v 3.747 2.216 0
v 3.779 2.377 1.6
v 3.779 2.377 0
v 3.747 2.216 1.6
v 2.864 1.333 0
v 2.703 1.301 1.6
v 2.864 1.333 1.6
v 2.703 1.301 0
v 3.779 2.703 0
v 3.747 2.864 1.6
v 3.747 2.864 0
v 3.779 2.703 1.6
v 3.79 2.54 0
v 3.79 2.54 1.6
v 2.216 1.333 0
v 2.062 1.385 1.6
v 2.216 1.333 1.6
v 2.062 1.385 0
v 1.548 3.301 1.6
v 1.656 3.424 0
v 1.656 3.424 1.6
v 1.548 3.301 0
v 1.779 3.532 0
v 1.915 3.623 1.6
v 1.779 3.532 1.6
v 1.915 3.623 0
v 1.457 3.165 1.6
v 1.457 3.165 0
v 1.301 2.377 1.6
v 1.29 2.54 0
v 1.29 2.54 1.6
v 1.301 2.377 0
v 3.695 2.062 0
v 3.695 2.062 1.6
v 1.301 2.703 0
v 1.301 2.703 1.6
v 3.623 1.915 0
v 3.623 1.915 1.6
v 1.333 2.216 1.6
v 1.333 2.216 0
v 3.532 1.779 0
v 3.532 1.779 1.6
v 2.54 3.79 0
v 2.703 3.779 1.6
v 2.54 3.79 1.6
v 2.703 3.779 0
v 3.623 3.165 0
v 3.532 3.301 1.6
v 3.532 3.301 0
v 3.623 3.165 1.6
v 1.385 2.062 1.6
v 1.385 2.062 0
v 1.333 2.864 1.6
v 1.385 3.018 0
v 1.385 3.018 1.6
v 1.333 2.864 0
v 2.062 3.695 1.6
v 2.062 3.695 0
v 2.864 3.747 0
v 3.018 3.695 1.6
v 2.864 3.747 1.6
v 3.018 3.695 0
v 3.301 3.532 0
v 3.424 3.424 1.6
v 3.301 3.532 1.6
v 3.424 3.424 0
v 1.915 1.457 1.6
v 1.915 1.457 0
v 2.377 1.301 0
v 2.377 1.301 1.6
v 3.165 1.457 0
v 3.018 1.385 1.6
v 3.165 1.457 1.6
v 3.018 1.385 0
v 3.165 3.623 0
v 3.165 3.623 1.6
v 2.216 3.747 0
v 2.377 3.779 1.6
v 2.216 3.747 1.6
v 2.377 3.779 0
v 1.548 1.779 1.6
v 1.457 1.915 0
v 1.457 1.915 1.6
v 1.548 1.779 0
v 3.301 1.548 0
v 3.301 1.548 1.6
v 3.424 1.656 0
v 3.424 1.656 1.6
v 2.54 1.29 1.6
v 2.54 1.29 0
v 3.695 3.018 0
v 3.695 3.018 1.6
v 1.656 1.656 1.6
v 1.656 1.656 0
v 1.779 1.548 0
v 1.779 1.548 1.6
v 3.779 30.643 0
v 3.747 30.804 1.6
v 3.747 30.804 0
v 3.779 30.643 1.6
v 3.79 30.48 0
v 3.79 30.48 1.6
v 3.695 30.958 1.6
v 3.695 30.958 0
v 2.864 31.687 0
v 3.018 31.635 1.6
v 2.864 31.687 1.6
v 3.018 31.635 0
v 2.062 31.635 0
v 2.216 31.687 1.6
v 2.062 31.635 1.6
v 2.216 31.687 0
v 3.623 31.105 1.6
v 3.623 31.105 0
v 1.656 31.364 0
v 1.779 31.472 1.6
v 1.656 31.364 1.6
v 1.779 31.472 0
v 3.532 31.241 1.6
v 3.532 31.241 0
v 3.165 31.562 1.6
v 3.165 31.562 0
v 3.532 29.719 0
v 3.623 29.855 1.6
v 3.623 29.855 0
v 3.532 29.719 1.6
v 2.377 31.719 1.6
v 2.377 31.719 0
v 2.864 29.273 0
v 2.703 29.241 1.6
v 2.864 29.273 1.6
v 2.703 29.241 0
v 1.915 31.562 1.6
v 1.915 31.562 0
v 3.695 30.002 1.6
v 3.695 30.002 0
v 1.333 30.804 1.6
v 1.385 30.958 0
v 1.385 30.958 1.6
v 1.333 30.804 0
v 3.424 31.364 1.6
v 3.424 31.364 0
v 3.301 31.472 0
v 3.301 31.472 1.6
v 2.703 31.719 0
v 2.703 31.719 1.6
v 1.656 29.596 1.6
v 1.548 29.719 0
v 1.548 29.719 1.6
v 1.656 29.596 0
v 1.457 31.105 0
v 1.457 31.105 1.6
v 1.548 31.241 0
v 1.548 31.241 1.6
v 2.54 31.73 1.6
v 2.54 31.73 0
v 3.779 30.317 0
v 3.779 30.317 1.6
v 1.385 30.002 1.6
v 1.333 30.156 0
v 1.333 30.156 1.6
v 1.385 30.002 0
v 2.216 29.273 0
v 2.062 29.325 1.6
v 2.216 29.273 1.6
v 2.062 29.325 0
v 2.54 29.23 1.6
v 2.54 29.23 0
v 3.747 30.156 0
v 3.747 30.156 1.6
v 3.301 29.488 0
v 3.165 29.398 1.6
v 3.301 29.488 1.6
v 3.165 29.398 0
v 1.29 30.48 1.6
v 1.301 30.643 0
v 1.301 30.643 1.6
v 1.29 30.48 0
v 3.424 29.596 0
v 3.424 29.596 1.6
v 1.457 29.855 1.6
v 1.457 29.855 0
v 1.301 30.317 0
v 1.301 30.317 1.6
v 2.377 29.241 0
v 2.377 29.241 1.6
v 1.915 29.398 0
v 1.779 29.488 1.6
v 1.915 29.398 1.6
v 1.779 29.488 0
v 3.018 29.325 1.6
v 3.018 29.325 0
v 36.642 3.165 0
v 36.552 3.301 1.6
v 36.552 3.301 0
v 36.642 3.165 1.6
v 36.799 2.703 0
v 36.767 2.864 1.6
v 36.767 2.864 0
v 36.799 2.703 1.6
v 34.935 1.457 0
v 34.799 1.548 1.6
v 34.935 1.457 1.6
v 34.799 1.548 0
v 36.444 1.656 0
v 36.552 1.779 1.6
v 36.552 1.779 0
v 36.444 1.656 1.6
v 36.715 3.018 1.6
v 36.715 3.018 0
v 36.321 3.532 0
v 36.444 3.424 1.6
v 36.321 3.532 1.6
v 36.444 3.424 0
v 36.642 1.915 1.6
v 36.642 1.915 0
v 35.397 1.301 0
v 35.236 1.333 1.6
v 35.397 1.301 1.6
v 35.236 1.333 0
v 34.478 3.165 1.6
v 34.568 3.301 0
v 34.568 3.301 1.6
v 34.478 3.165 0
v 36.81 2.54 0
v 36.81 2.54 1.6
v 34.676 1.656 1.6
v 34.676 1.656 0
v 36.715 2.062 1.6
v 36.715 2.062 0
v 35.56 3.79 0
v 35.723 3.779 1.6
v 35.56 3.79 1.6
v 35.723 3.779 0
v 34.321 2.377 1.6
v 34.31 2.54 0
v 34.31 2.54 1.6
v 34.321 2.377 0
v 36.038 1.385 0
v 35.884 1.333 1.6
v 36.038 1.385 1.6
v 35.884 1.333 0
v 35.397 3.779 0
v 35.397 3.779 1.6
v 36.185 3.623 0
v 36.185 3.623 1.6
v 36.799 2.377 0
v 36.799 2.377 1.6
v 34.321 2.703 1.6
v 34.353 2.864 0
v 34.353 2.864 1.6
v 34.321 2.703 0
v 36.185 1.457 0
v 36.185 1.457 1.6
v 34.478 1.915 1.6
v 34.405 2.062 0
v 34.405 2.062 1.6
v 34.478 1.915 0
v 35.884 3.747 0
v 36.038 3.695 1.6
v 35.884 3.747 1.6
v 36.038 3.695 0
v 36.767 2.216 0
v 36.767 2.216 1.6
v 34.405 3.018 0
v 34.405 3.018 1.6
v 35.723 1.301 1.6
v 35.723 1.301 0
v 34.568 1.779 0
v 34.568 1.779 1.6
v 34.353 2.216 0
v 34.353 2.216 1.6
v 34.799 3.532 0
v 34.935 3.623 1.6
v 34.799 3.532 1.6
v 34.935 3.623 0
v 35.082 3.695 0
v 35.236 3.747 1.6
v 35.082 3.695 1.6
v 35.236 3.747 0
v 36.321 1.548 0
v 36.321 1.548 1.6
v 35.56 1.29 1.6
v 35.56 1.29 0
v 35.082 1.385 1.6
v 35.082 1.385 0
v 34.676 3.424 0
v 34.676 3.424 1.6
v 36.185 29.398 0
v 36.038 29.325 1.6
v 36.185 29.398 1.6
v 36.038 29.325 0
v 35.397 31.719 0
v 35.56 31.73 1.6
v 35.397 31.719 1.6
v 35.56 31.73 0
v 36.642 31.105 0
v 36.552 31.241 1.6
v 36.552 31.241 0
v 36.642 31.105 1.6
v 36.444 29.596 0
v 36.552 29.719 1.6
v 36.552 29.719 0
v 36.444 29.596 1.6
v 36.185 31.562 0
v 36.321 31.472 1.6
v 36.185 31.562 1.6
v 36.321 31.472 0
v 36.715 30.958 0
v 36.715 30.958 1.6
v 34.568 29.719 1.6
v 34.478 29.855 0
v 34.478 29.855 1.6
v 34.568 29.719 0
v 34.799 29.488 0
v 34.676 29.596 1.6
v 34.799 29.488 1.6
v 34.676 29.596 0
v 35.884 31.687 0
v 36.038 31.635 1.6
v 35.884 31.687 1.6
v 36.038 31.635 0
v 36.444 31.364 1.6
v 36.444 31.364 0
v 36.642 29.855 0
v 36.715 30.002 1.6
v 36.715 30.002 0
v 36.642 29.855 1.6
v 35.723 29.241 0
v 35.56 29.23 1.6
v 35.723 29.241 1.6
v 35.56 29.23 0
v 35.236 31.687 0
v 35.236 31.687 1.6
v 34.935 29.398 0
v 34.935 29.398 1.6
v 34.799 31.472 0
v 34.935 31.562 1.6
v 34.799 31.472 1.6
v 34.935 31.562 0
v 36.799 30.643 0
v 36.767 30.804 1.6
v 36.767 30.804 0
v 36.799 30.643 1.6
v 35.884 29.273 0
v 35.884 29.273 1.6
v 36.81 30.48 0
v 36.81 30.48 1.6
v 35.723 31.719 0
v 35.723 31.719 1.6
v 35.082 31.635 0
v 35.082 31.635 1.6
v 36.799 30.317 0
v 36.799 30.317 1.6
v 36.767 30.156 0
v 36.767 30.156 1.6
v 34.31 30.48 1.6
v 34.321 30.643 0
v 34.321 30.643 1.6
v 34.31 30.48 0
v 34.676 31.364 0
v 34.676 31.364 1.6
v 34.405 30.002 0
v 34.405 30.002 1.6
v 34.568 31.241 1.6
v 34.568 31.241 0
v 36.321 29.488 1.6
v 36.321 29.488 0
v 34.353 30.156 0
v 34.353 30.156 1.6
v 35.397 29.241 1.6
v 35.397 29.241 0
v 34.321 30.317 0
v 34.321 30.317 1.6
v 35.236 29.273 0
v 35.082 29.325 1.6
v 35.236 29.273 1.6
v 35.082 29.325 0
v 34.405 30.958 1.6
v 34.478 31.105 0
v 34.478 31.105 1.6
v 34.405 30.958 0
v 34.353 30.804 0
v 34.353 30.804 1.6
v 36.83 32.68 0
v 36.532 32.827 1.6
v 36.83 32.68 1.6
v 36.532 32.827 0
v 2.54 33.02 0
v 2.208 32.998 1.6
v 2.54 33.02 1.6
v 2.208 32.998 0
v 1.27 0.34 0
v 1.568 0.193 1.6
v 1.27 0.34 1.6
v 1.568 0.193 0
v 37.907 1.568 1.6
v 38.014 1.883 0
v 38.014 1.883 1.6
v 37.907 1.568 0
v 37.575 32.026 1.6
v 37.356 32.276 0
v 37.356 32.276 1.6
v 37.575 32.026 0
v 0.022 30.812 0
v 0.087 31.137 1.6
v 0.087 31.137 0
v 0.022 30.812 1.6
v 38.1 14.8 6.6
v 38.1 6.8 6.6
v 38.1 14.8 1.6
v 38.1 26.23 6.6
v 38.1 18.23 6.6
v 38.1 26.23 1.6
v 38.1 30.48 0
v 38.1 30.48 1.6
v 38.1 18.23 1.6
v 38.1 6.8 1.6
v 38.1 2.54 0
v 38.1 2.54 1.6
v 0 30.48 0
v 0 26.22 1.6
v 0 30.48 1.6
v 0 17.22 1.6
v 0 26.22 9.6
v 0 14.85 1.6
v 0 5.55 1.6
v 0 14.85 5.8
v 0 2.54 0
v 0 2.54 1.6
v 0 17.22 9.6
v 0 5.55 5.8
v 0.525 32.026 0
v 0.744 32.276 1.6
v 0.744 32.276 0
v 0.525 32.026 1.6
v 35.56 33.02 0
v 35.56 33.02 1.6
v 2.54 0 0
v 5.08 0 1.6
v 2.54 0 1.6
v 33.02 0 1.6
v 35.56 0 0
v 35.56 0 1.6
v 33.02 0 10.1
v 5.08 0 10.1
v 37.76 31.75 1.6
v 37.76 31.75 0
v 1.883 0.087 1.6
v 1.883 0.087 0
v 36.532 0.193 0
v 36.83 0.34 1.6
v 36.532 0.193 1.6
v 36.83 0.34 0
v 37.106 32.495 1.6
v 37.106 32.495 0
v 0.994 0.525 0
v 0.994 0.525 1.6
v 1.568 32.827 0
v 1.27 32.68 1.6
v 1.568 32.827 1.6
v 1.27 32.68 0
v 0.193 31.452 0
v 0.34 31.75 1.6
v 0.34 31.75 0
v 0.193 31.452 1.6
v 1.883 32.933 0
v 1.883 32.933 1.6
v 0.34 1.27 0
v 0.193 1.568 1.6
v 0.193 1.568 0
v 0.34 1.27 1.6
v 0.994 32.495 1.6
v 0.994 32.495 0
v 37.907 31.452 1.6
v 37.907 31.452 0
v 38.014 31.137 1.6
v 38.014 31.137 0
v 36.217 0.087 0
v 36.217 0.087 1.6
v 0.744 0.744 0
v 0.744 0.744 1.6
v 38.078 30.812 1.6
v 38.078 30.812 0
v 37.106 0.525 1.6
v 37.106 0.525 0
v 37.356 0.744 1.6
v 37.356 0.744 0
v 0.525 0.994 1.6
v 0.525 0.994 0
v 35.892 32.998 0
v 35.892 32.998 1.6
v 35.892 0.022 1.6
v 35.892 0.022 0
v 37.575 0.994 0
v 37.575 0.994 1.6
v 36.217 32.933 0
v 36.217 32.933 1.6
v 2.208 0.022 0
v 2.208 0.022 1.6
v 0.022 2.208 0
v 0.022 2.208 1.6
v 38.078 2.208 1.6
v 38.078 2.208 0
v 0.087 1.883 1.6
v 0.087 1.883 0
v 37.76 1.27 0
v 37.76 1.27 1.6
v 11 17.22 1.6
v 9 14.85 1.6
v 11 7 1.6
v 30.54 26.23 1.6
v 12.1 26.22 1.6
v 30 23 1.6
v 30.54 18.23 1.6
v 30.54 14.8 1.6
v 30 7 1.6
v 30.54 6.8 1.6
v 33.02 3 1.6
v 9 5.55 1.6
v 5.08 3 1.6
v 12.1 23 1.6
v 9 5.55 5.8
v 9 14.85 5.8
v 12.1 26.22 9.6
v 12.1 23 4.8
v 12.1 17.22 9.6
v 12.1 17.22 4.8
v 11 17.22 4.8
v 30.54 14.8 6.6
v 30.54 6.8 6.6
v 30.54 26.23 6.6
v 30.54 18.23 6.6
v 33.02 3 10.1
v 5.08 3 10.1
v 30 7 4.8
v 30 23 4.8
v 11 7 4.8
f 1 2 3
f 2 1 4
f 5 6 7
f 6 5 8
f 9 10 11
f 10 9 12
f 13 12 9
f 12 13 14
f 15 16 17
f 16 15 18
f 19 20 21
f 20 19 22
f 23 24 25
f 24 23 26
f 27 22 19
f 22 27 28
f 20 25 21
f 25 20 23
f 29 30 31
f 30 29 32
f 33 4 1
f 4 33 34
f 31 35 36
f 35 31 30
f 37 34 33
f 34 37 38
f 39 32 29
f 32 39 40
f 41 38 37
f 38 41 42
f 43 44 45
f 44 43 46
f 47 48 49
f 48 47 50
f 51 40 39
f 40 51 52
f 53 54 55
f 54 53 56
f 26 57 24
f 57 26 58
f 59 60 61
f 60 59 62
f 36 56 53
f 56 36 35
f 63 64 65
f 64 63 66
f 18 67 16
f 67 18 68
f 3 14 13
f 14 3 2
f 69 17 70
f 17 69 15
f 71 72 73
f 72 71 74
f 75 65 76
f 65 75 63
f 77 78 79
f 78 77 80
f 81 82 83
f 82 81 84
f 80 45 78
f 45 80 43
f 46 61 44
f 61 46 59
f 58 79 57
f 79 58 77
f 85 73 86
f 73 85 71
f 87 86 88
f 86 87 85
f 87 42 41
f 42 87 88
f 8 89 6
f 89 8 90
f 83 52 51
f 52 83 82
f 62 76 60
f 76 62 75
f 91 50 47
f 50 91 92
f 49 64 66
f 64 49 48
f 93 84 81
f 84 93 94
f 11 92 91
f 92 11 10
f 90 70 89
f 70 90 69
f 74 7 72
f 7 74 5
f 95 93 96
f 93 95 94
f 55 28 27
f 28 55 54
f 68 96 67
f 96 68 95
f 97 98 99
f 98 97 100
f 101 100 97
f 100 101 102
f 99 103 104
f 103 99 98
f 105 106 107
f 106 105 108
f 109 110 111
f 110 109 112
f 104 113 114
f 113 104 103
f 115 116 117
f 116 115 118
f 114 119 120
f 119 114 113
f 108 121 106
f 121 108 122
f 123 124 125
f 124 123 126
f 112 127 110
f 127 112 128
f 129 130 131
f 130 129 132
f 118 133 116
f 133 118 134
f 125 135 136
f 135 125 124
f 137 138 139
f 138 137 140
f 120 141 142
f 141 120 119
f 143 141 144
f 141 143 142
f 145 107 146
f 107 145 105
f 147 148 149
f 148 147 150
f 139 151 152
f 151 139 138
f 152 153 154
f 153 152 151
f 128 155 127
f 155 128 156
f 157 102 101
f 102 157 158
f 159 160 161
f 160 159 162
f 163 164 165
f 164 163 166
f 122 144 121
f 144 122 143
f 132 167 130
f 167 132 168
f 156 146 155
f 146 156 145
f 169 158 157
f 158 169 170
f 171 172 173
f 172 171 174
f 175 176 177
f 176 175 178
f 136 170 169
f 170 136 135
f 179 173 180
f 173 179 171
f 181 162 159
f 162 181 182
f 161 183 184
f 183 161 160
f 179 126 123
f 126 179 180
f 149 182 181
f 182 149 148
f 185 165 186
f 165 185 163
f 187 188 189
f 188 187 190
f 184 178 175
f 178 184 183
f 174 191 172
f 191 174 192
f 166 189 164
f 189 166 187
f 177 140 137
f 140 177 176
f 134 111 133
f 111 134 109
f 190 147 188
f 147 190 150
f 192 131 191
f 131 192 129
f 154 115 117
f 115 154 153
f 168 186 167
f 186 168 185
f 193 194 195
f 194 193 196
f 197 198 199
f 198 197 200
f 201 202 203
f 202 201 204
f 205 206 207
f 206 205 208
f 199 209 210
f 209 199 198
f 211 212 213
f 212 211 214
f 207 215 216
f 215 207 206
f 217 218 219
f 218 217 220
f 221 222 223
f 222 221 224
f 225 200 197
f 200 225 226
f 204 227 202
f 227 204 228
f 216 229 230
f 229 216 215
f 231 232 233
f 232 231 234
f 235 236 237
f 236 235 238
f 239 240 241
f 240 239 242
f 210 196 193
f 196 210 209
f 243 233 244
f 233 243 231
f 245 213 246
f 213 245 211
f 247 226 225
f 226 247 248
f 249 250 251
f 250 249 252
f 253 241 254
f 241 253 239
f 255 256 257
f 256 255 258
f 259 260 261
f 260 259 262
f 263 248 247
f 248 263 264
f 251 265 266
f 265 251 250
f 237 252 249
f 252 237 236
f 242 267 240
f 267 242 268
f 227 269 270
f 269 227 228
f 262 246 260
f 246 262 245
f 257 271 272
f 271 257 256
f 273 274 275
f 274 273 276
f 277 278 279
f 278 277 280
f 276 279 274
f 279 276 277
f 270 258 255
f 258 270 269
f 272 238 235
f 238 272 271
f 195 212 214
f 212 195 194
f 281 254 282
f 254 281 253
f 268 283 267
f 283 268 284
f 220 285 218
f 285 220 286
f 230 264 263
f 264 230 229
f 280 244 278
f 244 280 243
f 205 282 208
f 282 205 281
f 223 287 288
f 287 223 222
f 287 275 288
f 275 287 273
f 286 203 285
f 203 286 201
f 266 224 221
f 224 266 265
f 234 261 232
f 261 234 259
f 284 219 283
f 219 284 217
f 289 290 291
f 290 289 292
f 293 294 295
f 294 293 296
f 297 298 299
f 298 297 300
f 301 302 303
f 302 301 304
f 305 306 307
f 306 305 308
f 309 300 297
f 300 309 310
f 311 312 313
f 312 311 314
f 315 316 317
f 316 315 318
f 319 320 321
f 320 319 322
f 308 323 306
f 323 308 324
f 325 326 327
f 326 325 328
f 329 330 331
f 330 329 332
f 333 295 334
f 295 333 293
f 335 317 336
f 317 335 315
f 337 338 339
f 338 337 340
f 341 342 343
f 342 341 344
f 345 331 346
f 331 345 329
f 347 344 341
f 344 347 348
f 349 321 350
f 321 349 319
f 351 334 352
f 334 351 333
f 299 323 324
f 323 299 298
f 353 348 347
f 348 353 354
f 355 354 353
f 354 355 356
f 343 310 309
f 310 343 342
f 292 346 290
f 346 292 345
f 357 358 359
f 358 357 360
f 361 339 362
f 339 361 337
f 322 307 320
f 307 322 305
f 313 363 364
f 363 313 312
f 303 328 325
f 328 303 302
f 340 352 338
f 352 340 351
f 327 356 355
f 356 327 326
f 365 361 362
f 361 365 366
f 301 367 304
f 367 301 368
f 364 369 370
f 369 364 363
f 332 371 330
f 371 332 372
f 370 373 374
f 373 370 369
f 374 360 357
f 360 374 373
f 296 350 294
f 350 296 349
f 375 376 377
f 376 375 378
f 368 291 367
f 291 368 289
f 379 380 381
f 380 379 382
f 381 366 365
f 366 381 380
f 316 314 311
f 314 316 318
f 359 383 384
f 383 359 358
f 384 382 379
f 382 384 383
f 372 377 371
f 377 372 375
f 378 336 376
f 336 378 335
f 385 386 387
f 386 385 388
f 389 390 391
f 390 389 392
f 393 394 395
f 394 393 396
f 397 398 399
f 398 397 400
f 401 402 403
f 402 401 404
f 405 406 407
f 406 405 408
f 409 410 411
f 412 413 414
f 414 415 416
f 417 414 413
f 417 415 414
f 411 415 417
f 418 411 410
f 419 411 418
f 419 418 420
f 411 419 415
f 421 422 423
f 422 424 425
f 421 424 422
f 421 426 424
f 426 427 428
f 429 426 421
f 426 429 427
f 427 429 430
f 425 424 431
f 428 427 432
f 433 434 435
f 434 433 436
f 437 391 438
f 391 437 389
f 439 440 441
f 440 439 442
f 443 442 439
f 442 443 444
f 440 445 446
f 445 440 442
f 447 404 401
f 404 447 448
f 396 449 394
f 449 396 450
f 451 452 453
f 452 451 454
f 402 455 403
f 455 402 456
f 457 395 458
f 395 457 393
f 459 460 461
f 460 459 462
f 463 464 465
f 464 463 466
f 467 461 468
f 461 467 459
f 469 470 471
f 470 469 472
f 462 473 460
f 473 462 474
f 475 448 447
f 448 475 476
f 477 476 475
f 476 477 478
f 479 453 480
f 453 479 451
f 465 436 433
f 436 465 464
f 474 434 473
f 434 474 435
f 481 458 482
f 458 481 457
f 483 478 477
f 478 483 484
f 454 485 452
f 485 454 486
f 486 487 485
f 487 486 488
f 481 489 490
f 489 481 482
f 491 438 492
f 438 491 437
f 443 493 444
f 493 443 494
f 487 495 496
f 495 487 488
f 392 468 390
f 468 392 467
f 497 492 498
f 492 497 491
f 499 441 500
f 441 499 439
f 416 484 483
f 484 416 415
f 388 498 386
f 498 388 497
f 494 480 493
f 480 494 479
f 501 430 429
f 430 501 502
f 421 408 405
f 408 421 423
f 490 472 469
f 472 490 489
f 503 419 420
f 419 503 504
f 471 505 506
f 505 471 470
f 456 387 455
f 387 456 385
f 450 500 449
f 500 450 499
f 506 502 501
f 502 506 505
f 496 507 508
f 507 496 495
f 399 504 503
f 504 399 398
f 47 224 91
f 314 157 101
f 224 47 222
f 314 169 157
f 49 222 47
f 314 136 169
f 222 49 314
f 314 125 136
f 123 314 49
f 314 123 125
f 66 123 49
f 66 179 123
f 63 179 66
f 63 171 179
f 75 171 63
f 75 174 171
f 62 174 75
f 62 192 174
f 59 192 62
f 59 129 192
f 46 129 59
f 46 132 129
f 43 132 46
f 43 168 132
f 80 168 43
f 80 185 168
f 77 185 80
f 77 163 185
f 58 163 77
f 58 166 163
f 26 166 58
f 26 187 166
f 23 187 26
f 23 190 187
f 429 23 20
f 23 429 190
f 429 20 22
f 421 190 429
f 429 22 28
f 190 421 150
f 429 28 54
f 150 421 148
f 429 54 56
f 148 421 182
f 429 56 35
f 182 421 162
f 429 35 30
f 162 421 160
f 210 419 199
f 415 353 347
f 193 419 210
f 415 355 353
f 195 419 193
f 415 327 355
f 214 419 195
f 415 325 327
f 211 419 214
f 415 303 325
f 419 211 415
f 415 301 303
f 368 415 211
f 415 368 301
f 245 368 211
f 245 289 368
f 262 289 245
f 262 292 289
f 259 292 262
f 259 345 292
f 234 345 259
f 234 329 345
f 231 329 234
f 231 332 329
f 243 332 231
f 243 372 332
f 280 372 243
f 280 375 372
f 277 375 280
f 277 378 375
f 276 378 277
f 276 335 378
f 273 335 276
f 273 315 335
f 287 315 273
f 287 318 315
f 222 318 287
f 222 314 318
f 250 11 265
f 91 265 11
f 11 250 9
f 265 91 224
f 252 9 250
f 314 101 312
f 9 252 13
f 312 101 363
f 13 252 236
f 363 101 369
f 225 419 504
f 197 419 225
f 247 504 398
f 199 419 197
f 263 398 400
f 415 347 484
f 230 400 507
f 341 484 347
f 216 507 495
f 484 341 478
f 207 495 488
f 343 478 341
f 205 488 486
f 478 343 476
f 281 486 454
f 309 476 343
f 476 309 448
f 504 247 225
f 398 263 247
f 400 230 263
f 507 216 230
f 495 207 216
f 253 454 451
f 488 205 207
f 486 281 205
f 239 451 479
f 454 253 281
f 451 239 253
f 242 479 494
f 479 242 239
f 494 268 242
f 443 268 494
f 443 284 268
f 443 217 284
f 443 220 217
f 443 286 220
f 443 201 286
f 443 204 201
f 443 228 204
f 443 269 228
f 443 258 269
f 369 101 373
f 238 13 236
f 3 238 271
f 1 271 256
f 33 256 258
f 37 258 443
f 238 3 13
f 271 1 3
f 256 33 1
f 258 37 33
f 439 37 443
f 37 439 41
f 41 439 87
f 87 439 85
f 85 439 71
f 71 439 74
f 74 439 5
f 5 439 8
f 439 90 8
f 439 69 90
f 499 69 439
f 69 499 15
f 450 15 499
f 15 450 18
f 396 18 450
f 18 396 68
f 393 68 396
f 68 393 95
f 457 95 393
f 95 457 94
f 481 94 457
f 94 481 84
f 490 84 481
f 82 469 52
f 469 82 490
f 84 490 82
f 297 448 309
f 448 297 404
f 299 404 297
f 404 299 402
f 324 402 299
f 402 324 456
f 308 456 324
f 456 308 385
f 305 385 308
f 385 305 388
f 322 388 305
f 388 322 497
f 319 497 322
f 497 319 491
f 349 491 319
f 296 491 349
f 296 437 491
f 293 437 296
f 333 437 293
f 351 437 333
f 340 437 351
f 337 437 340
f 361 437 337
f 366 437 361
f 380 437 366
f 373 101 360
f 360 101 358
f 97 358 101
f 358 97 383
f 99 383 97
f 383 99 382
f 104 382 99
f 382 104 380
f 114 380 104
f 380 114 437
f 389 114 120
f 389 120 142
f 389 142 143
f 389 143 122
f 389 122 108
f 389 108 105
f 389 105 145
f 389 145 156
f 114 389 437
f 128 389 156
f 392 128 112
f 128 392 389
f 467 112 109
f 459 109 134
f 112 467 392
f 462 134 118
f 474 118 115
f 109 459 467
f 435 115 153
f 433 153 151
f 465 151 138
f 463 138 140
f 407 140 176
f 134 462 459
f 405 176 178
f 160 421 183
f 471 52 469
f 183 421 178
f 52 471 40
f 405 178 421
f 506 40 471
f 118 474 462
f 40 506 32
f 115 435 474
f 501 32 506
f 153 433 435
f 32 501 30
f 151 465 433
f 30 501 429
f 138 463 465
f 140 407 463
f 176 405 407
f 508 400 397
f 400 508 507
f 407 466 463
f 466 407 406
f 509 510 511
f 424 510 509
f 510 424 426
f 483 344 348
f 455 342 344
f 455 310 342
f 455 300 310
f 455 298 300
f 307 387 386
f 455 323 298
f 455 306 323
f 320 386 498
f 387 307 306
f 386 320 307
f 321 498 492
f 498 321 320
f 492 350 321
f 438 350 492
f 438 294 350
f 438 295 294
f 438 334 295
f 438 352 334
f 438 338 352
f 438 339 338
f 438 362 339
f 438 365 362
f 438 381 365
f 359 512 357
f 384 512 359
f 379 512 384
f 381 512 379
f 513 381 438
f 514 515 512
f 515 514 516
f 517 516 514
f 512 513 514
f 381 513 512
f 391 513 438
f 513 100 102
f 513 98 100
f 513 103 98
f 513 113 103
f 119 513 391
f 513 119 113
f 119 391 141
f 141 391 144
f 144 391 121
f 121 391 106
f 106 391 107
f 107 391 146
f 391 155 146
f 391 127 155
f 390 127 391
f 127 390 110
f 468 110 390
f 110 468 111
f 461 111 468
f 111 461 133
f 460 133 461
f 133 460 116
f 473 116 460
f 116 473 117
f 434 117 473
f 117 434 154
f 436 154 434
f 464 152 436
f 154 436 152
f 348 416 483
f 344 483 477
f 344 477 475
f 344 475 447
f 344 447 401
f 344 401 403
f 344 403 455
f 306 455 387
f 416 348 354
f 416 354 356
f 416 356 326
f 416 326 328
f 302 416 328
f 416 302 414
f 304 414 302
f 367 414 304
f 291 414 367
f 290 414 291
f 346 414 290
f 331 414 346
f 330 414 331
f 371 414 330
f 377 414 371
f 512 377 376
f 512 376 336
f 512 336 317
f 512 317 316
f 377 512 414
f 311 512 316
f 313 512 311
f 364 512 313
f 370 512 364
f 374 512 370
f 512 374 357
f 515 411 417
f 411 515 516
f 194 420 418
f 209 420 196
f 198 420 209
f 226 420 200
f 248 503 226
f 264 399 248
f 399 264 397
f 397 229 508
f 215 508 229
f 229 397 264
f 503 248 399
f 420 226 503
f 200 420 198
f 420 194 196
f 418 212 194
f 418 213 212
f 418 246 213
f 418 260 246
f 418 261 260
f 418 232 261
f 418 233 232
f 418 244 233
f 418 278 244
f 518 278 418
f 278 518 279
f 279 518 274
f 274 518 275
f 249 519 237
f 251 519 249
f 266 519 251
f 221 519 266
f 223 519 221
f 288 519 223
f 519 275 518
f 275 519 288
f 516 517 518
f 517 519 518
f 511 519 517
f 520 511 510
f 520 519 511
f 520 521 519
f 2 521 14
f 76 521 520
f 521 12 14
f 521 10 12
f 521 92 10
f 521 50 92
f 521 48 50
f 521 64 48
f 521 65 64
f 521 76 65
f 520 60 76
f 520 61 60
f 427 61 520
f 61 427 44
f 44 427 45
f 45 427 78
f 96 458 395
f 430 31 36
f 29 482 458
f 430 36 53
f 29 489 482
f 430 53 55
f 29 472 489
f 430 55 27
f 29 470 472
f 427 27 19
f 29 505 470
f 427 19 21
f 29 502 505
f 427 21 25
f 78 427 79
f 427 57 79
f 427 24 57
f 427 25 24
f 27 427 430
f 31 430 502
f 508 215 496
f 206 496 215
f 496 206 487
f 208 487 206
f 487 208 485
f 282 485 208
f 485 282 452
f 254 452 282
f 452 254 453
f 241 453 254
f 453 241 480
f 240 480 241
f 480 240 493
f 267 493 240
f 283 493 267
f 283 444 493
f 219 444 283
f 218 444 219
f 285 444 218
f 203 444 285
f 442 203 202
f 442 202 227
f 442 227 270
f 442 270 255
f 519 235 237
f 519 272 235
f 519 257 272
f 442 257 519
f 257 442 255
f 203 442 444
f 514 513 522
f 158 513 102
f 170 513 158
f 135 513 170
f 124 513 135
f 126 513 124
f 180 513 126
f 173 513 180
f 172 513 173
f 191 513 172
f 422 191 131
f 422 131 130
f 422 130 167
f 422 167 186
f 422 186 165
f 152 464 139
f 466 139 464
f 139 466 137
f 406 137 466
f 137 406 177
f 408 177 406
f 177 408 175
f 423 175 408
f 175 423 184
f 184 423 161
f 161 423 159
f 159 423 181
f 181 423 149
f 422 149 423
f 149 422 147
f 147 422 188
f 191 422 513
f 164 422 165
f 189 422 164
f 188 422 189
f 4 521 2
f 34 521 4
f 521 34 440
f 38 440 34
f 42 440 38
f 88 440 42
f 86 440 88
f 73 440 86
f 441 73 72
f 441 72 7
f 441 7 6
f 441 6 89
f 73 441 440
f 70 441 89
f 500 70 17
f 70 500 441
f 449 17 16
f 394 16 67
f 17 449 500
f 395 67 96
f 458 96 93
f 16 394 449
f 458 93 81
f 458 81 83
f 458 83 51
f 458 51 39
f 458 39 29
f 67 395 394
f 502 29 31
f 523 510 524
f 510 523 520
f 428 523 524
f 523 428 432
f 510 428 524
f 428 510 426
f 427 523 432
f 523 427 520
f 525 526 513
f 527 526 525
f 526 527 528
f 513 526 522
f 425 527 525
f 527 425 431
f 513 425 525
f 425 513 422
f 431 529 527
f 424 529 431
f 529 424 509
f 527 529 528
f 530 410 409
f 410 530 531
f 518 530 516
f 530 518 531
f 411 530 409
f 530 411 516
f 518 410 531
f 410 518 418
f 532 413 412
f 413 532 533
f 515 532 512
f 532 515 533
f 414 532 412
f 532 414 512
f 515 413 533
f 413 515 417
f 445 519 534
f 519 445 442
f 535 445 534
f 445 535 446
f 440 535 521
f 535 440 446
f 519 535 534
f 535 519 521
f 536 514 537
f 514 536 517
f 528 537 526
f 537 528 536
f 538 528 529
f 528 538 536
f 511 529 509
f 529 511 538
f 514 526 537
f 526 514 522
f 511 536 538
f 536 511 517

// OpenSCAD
// Adafruit #4755 BQ24074 charger enclosure-fit mock.
// Units: mm. PCB outline and mounting holes come from Adafruit's published
// Eagle board source. Connector bodies are conservative service envelopes.

$fn = 48;
pcb_x = 38.10;
pcb_y = 33.02;
pcb_z = 1.60;

module rounded_pcb() {
    hull() {
        for (x = [2.54, pcb_x - 2.54])
            for (y = [2.54, pcb_y - 2.54])
                translate([x, y, 0]) cylinder(r = 2.54, h = pcb_z);
    }
}

difference() {
    rounded_pcb();
    for (x = [2.54, 35.56])
        for (y = [2.54, 30.48])
            translate([x, y, -0.1]) cylinder(d = 2.50, h = pcb_z + 0.2);
}

// USB-C receptacle, 2.1 mm barrel jack, battery and load JST-PH connectors.
translate([0, 5.55, pcb_z]) cube([9.0, 9.3, 4.2]);
translate([0, 17.22, pcb_z]) cube([12.1, 9.0, 8.0]);
translate([30.54, 6.80, pcb_z]) cube([7.56, 8.0, 5.0]);
translate([30.54, 18.23, pcb_z]) cube([7.56, 8.0, 5.0]);
translate([5.08, 0, pcb_z]) cube([27.94, 3.0, 8.5]);
translate([11.0, 7.0, pcb_z]) cube([19.0, 16.0, 3.2]);
